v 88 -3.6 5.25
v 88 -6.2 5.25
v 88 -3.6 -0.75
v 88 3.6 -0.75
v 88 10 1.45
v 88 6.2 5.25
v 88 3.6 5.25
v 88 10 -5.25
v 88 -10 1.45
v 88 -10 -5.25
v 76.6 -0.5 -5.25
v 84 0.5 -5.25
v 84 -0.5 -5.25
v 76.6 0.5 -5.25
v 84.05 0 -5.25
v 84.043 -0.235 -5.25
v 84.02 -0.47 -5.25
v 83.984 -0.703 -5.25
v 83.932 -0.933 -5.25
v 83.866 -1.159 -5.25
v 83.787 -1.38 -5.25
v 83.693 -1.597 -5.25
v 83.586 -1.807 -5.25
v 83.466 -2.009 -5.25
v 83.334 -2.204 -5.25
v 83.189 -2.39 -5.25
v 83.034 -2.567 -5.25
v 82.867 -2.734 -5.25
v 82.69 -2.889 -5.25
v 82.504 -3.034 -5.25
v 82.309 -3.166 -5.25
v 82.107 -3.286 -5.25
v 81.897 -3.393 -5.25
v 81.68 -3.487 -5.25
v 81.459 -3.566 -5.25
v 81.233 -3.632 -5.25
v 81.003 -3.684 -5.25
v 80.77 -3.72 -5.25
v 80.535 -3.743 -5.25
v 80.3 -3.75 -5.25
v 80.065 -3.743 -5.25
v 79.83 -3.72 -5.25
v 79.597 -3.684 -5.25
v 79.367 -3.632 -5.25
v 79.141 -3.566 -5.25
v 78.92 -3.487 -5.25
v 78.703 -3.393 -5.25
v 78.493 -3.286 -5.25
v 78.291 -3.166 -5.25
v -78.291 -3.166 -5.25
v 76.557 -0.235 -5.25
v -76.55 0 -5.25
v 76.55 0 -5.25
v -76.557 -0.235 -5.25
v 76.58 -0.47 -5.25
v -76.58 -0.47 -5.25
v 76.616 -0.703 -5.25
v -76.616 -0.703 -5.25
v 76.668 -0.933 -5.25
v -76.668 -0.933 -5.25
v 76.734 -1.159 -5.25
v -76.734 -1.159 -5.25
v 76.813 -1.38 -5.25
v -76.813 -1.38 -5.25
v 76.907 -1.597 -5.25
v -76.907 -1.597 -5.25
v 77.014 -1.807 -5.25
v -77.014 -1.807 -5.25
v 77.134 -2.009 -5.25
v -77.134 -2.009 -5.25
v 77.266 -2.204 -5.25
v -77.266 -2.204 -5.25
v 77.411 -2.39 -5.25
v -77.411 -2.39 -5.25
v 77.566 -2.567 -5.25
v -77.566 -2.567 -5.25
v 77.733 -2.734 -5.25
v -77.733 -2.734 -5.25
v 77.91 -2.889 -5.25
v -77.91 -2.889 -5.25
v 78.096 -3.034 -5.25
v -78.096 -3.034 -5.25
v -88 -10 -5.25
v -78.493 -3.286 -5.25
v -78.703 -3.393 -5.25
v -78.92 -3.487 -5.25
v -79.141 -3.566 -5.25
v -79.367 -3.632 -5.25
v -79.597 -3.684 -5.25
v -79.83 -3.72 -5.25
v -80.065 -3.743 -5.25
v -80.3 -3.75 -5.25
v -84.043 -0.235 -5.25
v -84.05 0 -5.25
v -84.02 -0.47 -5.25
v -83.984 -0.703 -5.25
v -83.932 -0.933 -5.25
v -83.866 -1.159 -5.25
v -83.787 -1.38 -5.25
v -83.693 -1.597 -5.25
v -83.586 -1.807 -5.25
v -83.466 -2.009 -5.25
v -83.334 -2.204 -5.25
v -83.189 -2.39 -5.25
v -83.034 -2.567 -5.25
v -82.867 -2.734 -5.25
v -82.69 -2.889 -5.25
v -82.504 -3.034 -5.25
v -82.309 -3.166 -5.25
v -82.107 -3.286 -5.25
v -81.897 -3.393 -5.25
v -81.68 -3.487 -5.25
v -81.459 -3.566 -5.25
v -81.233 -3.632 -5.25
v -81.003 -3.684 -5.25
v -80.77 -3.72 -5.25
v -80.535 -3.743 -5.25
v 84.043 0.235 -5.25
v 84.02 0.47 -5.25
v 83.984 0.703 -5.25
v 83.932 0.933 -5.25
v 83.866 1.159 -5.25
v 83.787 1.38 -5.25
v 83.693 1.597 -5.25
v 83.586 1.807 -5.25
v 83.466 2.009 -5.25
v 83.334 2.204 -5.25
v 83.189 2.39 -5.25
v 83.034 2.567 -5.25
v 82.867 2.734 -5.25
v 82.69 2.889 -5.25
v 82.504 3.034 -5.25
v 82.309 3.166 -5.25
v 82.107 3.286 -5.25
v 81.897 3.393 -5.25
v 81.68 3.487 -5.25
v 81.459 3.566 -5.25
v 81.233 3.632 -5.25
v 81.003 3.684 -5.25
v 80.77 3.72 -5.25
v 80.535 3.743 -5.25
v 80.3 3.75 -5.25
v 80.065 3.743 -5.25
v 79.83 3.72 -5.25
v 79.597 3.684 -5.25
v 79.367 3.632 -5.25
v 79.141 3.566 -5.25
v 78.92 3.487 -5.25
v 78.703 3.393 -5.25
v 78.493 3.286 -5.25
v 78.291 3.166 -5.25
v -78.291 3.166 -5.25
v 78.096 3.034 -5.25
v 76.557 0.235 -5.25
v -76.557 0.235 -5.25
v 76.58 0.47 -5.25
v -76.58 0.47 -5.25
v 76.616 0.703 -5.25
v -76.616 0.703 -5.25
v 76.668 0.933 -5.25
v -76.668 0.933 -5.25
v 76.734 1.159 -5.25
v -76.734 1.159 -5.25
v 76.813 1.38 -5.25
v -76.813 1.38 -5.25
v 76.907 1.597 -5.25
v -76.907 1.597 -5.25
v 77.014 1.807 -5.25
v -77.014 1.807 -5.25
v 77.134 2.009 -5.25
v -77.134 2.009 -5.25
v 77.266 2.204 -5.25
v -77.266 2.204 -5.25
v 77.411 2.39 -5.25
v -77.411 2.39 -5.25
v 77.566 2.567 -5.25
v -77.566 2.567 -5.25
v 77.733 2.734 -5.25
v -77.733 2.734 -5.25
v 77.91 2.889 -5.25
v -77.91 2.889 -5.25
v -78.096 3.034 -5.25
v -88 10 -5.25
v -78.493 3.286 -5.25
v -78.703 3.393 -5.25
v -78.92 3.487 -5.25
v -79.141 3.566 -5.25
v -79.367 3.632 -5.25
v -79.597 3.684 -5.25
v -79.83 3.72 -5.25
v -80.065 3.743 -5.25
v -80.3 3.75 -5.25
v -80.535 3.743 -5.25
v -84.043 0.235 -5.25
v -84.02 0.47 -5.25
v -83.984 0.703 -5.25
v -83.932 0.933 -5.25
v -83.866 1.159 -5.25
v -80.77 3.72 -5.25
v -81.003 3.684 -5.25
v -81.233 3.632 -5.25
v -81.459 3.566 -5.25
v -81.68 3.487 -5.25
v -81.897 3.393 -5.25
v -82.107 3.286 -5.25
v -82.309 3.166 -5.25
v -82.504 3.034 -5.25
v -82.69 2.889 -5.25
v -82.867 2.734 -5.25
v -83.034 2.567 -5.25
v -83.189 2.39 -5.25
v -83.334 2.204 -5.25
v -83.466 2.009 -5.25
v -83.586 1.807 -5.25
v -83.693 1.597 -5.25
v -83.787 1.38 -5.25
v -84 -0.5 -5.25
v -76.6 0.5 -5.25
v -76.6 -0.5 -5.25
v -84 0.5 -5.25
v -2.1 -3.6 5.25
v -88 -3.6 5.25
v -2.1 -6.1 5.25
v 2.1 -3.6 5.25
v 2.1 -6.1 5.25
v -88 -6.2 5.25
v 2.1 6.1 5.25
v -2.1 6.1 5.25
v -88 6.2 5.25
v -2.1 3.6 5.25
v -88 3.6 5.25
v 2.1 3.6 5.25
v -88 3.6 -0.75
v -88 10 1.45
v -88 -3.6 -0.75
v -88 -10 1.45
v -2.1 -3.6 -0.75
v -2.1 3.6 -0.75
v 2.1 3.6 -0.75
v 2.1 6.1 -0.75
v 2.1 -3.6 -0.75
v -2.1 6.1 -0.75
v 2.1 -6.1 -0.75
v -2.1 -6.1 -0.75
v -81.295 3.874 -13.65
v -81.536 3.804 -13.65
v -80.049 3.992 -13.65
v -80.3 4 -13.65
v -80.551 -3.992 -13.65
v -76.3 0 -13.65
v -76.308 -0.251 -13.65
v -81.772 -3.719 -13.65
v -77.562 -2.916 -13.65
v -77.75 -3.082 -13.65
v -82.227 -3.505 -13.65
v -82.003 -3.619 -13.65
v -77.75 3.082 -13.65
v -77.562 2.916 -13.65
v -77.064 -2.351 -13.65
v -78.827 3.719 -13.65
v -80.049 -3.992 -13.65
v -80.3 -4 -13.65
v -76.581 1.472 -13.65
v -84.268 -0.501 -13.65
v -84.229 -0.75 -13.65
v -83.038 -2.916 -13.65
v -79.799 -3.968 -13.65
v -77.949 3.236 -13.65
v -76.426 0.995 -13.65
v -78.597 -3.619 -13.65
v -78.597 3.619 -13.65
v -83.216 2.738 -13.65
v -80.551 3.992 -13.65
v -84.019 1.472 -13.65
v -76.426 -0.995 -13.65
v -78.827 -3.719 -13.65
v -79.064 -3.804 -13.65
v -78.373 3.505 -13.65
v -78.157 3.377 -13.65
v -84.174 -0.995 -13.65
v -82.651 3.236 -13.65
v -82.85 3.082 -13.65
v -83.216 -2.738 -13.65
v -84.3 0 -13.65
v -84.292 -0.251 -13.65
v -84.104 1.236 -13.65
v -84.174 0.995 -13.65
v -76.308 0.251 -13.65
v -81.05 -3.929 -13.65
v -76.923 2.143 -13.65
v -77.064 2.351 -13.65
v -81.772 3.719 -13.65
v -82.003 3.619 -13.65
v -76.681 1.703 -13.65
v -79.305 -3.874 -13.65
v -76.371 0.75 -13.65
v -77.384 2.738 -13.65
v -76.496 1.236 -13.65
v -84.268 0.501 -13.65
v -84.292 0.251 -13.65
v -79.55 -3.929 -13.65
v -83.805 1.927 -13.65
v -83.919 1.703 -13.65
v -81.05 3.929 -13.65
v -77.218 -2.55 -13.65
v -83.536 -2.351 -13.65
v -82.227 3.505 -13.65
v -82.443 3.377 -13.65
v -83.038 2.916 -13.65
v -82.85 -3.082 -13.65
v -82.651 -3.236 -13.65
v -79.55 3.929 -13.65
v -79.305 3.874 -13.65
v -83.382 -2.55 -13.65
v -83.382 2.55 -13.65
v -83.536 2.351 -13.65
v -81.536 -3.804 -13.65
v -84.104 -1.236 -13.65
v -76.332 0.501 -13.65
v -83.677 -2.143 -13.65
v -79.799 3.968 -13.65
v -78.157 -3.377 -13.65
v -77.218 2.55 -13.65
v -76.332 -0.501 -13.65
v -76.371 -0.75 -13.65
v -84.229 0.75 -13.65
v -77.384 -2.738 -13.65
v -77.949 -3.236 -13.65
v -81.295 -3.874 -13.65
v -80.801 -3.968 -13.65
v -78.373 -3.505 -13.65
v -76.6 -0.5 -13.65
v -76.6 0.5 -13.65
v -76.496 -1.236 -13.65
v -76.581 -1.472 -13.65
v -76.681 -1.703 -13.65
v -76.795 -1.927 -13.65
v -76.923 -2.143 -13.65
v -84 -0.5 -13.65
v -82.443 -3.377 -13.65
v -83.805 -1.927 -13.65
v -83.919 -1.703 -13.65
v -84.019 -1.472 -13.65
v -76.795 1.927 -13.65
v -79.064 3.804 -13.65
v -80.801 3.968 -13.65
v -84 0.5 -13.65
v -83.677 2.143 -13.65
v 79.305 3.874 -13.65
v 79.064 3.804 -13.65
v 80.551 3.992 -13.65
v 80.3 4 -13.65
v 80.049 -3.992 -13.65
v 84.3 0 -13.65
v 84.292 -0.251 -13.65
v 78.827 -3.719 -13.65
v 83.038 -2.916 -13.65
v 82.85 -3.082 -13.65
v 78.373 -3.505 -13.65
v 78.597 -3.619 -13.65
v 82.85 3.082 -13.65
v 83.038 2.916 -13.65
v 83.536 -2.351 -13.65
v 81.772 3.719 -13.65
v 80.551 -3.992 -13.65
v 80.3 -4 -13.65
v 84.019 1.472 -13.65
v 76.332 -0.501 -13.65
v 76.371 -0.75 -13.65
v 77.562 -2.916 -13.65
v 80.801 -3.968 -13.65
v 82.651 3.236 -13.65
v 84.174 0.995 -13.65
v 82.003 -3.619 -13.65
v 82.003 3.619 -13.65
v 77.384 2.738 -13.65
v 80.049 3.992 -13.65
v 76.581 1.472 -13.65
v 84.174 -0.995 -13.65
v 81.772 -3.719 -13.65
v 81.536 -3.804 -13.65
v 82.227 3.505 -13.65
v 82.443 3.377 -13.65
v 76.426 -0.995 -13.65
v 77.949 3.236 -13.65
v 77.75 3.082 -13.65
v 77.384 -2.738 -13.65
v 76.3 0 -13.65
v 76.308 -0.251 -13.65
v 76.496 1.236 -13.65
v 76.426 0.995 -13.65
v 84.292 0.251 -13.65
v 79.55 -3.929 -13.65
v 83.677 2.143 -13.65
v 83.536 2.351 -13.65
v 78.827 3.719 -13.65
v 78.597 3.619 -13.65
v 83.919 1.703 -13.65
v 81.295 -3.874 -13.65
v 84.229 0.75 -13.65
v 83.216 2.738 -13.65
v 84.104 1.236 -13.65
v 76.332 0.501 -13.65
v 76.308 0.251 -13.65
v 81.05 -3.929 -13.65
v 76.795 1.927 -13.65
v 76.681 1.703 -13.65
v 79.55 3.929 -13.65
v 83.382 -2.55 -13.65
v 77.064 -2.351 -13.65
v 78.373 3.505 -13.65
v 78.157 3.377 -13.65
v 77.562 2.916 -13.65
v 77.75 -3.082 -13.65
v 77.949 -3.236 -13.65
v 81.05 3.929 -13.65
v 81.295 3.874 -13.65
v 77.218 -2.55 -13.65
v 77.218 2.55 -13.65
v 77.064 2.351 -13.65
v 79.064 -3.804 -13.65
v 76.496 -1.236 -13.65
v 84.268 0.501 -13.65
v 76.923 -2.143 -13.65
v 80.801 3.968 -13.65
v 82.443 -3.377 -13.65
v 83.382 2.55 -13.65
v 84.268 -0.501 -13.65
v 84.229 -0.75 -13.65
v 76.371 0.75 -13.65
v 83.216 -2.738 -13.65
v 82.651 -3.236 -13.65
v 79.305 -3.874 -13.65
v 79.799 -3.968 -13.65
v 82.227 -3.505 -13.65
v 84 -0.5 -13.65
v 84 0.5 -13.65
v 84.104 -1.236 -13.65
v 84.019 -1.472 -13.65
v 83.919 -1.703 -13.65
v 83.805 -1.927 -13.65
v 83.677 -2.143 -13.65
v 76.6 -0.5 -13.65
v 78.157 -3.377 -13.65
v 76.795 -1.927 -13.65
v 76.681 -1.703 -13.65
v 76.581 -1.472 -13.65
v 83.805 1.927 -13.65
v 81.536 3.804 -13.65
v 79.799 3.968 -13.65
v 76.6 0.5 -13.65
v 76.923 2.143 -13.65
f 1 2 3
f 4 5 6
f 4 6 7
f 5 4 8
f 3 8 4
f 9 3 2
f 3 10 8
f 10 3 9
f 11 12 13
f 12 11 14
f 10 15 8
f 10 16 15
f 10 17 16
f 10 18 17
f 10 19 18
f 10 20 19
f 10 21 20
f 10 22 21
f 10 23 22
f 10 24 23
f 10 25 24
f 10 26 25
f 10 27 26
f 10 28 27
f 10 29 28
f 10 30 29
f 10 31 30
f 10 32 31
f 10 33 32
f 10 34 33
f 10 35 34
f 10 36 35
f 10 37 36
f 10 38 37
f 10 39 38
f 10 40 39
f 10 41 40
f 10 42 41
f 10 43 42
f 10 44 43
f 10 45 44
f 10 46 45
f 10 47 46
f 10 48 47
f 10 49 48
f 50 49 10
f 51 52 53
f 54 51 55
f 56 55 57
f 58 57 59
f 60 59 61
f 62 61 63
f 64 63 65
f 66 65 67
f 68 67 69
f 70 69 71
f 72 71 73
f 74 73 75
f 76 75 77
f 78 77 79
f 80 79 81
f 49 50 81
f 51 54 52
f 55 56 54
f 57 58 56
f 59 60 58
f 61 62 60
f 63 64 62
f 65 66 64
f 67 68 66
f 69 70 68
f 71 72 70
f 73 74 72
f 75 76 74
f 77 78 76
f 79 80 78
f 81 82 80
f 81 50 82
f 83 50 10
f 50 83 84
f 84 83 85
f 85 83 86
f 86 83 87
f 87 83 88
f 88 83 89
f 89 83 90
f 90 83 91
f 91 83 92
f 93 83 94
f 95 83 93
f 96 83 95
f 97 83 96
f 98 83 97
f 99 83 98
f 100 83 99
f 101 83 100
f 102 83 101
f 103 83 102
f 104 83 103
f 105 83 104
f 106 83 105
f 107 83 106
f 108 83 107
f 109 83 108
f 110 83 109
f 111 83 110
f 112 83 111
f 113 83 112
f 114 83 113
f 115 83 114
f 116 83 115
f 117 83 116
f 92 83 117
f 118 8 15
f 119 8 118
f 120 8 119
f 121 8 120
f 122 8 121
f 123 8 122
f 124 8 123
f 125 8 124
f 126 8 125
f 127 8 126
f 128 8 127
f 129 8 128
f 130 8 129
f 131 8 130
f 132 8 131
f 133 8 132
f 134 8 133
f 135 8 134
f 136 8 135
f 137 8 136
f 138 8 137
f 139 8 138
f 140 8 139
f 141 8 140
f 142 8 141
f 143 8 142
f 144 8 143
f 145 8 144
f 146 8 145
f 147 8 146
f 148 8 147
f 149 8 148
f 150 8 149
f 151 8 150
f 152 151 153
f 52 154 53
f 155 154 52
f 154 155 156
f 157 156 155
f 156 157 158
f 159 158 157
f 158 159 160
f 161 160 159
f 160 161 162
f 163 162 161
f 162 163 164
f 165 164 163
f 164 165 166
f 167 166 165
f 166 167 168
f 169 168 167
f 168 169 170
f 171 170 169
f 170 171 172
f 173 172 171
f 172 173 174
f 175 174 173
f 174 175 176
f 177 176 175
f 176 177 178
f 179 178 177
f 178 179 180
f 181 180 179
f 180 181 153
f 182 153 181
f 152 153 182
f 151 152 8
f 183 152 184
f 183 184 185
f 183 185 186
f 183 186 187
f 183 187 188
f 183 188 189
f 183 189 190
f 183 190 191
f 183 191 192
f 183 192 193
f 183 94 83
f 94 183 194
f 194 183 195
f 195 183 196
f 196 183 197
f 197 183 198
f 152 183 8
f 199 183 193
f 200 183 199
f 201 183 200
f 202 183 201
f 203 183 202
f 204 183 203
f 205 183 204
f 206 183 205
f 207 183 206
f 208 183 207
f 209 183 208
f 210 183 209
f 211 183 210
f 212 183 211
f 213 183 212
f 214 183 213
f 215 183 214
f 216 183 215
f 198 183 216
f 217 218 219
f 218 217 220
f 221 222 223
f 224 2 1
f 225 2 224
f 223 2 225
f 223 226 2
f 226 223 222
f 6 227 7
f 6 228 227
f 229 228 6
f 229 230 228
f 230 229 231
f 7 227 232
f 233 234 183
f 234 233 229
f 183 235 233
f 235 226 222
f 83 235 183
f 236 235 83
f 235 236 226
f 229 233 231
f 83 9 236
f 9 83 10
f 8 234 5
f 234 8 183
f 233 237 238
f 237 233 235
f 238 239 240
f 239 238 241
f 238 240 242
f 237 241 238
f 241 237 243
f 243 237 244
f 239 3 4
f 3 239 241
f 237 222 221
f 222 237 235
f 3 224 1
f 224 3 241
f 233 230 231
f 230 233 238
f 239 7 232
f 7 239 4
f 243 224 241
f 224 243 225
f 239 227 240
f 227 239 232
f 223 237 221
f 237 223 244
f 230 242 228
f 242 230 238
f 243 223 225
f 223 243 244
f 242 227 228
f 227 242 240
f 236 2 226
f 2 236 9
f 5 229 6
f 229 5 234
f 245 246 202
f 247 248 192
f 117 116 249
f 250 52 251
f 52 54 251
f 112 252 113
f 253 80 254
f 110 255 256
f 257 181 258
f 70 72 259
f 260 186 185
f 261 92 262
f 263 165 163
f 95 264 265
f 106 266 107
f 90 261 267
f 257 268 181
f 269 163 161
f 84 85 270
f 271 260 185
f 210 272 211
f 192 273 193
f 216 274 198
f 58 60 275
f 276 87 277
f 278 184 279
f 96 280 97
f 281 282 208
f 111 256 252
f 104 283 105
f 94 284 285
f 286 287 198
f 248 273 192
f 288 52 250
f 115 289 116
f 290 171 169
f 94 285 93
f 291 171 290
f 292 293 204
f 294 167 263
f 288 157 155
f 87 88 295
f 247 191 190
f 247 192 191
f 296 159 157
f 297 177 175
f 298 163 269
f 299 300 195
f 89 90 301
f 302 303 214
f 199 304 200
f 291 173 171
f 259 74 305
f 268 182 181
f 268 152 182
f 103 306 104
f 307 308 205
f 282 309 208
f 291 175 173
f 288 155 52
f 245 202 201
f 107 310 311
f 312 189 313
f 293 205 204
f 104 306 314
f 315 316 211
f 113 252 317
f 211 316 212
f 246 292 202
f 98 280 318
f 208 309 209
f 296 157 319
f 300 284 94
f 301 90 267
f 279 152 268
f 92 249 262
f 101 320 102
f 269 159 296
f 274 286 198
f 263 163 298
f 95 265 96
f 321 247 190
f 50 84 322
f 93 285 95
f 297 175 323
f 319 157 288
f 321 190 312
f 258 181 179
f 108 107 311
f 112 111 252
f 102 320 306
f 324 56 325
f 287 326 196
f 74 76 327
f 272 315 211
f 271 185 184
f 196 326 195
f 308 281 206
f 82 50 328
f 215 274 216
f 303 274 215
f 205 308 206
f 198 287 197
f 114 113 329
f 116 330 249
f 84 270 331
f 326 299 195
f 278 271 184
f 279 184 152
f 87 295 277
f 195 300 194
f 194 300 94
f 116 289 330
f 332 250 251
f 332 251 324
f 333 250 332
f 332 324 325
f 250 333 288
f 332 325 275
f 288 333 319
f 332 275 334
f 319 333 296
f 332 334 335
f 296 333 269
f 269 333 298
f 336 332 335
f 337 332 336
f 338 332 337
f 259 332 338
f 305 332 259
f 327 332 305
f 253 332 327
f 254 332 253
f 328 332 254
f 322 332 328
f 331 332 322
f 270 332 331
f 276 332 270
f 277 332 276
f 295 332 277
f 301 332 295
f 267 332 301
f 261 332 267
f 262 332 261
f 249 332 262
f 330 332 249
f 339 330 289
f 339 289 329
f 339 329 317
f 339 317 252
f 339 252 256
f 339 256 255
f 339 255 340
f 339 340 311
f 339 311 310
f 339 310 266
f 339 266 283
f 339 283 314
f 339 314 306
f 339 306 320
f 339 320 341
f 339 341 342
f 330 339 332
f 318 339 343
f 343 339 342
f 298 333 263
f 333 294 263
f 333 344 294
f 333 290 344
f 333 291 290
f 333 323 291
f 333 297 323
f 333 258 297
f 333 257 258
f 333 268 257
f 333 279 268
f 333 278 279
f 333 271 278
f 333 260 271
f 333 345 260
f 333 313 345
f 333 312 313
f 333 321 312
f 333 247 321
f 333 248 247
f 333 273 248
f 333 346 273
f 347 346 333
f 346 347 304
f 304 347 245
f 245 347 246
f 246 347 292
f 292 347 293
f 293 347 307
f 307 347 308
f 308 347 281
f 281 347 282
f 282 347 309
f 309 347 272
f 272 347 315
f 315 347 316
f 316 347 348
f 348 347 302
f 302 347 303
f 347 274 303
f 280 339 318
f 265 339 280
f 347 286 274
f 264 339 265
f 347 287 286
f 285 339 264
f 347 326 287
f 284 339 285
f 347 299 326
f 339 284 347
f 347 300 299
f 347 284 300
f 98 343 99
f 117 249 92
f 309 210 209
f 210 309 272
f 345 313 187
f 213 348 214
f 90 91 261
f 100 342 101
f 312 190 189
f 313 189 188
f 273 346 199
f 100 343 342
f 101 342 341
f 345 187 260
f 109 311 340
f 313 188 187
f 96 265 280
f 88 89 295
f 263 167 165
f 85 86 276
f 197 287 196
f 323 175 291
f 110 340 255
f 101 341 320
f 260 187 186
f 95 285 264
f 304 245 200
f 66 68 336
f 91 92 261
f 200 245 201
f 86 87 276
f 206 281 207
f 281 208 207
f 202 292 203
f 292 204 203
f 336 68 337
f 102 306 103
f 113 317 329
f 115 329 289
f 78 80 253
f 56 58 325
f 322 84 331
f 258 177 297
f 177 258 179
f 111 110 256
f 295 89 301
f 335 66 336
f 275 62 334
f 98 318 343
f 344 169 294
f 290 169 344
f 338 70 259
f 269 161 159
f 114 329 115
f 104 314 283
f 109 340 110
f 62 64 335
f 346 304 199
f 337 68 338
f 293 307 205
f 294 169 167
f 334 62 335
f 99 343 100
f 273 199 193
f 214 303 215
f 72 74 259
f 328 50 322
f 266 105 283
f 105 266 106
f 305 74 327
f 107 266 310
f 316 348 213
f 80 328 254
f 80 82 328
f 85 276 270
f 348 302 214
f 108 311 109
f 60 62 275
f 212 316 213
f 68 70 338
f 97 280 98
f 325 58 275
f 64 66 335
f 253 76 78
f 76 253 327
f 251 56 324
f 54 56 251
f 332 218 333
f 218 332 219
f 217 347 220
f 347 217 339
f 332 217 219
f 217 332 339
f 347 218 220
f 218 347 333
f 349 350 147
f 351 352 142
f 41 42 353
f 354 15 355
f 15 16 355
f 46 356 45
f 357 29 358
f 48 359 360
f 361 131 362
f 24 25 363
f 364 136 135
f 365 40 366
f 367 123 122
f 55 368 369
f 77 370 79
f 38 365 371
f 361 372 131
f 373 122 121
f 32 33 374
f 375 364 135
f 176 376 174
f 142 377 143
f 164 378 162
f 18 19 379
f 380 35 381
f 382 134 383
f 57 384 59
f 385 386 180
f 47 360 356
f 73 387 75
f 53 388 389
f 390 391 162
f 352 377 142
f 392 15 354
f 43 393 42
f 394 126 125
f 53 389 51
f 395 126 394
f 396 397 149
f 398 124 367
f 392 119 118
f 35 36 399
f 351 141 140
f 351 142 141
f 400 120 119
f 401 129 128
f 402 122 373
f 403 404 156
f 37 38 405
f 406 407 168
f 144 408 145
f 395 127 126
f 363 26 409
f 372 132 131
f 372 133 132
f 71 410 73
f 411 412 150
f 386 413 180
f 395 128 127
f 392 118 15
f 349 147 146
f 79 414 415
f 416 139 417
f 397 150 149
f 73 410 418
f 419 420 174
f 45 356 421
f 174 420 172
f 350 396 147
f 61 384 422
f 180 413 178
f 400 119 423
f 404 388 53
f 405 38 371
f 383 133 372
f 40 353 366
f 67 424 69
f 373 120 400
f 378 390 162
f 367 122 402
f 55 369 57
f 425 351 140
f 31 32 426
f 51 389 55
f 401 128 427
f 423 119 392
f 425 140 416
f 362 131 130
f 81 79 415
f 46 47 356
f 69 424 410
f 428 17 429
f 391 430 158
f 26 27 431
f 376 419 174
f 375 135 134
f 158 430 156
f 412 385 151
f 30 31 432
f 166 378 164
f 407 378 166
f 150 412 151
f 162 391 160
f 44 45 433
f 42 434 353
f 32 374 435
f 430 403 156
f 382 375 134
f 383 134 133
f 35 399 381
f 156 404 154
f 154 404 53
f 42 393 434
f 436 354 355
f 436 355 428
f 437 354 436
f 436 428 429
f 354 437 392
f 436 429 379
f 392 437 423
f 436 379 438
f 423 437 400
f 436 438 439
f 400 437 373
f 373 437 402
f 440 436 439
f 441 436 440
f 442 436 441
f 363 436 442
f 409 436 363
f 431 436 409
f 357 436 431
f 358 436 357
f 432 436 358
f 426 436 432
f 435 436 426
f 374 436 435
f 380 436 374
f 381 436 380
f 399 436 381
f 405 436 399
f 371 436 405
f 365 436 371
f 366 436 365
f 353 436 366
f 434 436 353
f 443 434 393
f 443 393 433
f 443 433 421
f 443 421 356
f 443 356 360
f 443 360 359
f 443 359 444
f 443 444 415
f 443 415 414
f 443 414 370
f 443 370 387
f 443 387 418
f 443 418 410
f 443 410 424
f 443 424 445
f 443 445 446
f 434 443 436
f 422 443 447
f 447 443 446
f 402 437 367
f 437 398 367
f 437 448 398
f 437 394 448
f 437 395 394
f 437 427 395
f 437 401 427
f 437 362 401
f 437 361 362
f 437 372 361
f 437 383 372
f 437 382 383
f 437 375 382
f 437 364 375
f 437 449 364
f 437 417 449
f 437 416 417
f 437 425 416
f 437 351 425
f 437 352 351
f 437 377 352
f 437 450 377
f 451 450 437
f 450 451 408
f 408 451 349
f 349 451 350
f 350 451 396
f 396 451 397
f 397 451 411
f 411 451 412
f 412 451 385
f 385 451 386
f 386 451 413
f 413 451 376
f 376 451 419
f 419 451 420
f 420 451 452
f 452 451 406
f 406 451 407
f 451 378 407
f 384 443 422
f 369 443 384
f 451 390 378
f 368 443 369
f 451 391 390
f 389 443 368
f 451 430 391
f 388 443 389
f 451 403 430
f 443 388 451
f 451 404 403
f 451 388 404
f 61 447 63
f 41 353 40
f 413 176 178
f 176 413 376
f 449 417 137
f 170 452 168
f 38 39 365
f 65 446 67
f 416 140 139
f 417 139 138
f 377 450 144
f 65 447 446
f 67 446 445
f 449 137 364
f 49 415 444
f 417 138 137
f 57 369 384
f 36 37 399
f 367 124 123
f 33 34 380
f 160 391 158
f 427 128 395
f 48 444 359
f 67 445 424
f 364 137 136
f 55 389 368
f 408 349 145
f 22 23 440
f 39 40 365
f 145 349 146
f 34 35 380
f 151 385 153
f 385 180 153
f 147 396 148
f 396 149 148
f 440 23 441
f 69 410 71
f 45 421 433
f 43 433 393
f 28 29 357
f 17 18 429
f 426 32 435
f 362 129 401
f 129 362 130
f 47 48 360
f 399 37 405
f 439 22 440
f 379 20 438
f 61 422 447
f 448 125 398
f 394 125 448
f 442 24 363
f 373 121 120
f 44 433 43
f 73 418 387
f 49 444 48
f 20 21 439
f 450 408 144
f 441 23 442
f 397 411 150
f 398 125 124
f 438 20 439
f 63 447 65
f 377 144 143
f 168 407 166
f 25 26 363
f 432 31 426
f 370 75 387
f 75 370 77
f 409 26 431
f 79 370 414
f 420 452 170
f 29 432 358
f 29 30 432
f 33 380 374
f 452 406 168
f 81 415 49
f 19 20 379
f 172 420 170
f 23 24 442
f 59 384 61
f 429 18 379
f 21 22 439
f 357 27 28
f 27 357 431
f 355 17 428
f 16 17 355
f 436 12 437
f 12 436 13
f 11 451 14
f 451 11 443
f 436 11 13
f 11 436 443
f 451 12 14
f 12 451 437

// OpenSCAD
// --- Helper Modules for BOTTOM Chamfer Cutters ---

// Module to create a triangular prism for chamfering the bottom positive Y side
// (e.g., edge along Y=main_width, Z=0)
module chamfer_cutter_bottom_positive_y(length, obj_width, chamfer_dim) {
    points = [
        [0, obj_width - chamfer_dim, 0],               // 0: Bottom-Front-Inner (on Z=0 plane)
        [0, obj_width, chamfer_dim],                   // 1: Side-Front-Upper (on Y=obj_width plane, Z=chamfer_dim)
        [0, obj_width, 0],                             // 2: Bottom-Front-Outer (original corner at Y=obj_width, Z=0)
        [length, obj_width - chamfer_dim, 0],          // 3: Bottom-Back-Inner
        [length, obj_width, chamfer_dim],              // 4: Side-Back-Upper
        [length, obj_width, 0]                         // 5: Bottom-Back-Outer
    ];
    faces = [
        [0,1,2],      // Front triangle face
        [3,5,4],      // Back triangle face
        [0,3,4,1],    // Slanted chamfer surface
        [0,2,5,3],    // Bottom surface part (aligns with Z=0)
        [2,1,4,5]     // Side surface part (aligns with Y=obj_width)
    ];
    polyhedron(points=points, faces=faces);
}

// Module to create a triangular prism for chamfering the bottom negative Y side
// (e.g., edge along Y=0, Z=0)
module chamfer_cutter_bottom_negative_y(length, chamfer_dim) {
    points = [
        [0, chamfer_dim, 0],                           // 0: Bottom-Front-Inner (Y=chamfer_dim, Z=0)
        [0, 0, chamfer_dim],                           // 1: Side-Front-Upper (Y=0, Z=chamfer_dim)
        [0, 0, 0],                                     // 2: Bottom-Front-Outer (original corner at Y=0, Z=0)
        [length, chamfer_dim, 0],                      // 3: Bottom-Back-Inner
        [length, 0, chamfer_dim],                      // 4: Side-Back-Upper
        [length, 0, 0]                                 // 5: Bottom-Back-Outer
    ];
    faces = [
        [0,2,1],      // Front triangle face
        [3,4,5],      // Back triangle face
        [0,1,4,3],    // Slanted chamfer surface
        [0,3,5,2],    // Bottom surface part (aligns with Z=0)
        [2,5,4,1]     // Side surface part (aligns with Y=0)
    ];
    polyhedron(points=points, faces=faces);
}

// --- Main Model Code ---

// Dimensions of the main cuboid
main_length = 176; // Corresponds to X-axis
main_width  = 20;  // Corresponds to Y-axis (original full width)
main_height = 10.5; // Corresponds to Z-axis

// Desired base width after chamfering (at Z=0)
new_base_width = 12.4;

// Calculate chamfer dimension for bottom edges
bottom_chamfer_dimension = (main_width - new_base_width) / 2; // (20 - 12.4) / 2 = 3.8

// Dimensions of the main groove
groove_length = main_length;
groove_cut_width = 7.2;
groove_cut_depth = 6;

// Calculations for Main Groove Positioning
offset_y_groove = (main_width - groove_cut_width) / 2;
offset_z_groove = 0;

// Properties for the wider section of the groove
wide_groove_section_actual_length = 4.2;
wide_groove_section_actual_width  = 12.2;

// Calculations for Wider Groove Section Positioning
wide_groove_section_x_start = (main_length / 2) - (wide_groove_section_actual_length / 2);
wide_groove_section_y_offset = (main_width - wide_groove_section_actual_width) / 2;

// Cylinder Properties
cylinder_height_protrusion = 8.4;
cylinder_base_diameter = 7.5;
cylinder_base_radius = cylinder_base_diameter / 2;
cylinder_top_diameter = 8;
cylinder_top_radius = cylinder_top_diameter / 2;
cylinder_x_offset_from_center = 80.3;

// Slot Properties
slot_length = 7.4;
slot_width  = 1.0;
slot_depth  = 8.4; 

// Calculations for Cylinder Positioning
cyl1_x_local = (main_length / 2) - cylinder_x_offset_from_center;
cyl2_x_local = (main_length / 2) + cylinder_x_offset_from_center;
cyl_y_local = main_width / 2;
cyl_base_z_local = main_height; // Cylinders are on the top surface

// Smoothness for rendering
cylinder_smoothness = 100;


// --- Create the Model ---
rotate([180, 0,0]){
translate([-main_length/2, -main_width/2, -main_height/2]) { // Global centering
    union() {
        // 1. The main body (cuboid with groove and BOTTOM chamfers)
        difference() {
            // Base cuboid (defines the overall volume before subtractions)
            cube([main_length, main_width, main_height]);

            // --- Subtractions from main body ---
            // Original full-length groove
            translate([0, offset_y_groove, offset_z_groove]) {
                cube([groove_length, groove_cut_width, groove_cut_depth]);
            }

            // Wider section in the middle of the groove
            translate([wide_groove_section_x_start, wide_groove_section_y_offset, offset_z_groove]) {
                cube([wide_groove_section_actual_length, wide_groove_section_actual_width, groove_cut_depth]);
            }

            // Chamfer on the bottom positive Y side
            if (bottom_chamfer_dimension > 0) {
                chamfer_cutter_bottom_positive_y(main_length, main_width, bottom_chamfer_dimension);
            }

            // Chamfer on the bottom negative Y side
            if (bottom_chamfer_dimension > 0) {
                chamfer_cutter_bottom_negative_y(main_length, bottom_chamfer_dimension);
            }
        }

        // --- Additions to the model (cylinders) ---
        // These are added after the main body is formed and are not affected by its internal subtractions.

        // 2. First Tapered Cylinder with Slot
        translate([cyl1_x_local, cyl_y_local, cyl_base_z_local]) {
            difference() {
                cylinder(h = cylinder_height_protrusion, r1 = cylinder_base_radius, r2 = cylinder_top_radius, $fn = cylinder_smoothness);
                translate([0, 0, cylinder_height_protrusion - (slot_depth / 2)]) {
                    cube([slot_length, slot_width, slot_depth], center = true);
                }
            }
        }

        // 3. Second Tapered Cylinder with Slot
        translate([cyl2_x_local, cyl_y_local, cyl_base_z_local]) {
            difference() {
                cylinder(h = cylinder_height_protrusion, r1 = cylinder_base_radius, r2 = cylinder_top_radius, $fn = cylinder_smoothness);
                translate([0, 0, cylinder_height_protrusion - (slot_depth / 2)]) {
                    cube([slot_length, slot_width, slot_depth], center = true);
                }
            }
        }
    }
}
}

// --- End of Code ---
